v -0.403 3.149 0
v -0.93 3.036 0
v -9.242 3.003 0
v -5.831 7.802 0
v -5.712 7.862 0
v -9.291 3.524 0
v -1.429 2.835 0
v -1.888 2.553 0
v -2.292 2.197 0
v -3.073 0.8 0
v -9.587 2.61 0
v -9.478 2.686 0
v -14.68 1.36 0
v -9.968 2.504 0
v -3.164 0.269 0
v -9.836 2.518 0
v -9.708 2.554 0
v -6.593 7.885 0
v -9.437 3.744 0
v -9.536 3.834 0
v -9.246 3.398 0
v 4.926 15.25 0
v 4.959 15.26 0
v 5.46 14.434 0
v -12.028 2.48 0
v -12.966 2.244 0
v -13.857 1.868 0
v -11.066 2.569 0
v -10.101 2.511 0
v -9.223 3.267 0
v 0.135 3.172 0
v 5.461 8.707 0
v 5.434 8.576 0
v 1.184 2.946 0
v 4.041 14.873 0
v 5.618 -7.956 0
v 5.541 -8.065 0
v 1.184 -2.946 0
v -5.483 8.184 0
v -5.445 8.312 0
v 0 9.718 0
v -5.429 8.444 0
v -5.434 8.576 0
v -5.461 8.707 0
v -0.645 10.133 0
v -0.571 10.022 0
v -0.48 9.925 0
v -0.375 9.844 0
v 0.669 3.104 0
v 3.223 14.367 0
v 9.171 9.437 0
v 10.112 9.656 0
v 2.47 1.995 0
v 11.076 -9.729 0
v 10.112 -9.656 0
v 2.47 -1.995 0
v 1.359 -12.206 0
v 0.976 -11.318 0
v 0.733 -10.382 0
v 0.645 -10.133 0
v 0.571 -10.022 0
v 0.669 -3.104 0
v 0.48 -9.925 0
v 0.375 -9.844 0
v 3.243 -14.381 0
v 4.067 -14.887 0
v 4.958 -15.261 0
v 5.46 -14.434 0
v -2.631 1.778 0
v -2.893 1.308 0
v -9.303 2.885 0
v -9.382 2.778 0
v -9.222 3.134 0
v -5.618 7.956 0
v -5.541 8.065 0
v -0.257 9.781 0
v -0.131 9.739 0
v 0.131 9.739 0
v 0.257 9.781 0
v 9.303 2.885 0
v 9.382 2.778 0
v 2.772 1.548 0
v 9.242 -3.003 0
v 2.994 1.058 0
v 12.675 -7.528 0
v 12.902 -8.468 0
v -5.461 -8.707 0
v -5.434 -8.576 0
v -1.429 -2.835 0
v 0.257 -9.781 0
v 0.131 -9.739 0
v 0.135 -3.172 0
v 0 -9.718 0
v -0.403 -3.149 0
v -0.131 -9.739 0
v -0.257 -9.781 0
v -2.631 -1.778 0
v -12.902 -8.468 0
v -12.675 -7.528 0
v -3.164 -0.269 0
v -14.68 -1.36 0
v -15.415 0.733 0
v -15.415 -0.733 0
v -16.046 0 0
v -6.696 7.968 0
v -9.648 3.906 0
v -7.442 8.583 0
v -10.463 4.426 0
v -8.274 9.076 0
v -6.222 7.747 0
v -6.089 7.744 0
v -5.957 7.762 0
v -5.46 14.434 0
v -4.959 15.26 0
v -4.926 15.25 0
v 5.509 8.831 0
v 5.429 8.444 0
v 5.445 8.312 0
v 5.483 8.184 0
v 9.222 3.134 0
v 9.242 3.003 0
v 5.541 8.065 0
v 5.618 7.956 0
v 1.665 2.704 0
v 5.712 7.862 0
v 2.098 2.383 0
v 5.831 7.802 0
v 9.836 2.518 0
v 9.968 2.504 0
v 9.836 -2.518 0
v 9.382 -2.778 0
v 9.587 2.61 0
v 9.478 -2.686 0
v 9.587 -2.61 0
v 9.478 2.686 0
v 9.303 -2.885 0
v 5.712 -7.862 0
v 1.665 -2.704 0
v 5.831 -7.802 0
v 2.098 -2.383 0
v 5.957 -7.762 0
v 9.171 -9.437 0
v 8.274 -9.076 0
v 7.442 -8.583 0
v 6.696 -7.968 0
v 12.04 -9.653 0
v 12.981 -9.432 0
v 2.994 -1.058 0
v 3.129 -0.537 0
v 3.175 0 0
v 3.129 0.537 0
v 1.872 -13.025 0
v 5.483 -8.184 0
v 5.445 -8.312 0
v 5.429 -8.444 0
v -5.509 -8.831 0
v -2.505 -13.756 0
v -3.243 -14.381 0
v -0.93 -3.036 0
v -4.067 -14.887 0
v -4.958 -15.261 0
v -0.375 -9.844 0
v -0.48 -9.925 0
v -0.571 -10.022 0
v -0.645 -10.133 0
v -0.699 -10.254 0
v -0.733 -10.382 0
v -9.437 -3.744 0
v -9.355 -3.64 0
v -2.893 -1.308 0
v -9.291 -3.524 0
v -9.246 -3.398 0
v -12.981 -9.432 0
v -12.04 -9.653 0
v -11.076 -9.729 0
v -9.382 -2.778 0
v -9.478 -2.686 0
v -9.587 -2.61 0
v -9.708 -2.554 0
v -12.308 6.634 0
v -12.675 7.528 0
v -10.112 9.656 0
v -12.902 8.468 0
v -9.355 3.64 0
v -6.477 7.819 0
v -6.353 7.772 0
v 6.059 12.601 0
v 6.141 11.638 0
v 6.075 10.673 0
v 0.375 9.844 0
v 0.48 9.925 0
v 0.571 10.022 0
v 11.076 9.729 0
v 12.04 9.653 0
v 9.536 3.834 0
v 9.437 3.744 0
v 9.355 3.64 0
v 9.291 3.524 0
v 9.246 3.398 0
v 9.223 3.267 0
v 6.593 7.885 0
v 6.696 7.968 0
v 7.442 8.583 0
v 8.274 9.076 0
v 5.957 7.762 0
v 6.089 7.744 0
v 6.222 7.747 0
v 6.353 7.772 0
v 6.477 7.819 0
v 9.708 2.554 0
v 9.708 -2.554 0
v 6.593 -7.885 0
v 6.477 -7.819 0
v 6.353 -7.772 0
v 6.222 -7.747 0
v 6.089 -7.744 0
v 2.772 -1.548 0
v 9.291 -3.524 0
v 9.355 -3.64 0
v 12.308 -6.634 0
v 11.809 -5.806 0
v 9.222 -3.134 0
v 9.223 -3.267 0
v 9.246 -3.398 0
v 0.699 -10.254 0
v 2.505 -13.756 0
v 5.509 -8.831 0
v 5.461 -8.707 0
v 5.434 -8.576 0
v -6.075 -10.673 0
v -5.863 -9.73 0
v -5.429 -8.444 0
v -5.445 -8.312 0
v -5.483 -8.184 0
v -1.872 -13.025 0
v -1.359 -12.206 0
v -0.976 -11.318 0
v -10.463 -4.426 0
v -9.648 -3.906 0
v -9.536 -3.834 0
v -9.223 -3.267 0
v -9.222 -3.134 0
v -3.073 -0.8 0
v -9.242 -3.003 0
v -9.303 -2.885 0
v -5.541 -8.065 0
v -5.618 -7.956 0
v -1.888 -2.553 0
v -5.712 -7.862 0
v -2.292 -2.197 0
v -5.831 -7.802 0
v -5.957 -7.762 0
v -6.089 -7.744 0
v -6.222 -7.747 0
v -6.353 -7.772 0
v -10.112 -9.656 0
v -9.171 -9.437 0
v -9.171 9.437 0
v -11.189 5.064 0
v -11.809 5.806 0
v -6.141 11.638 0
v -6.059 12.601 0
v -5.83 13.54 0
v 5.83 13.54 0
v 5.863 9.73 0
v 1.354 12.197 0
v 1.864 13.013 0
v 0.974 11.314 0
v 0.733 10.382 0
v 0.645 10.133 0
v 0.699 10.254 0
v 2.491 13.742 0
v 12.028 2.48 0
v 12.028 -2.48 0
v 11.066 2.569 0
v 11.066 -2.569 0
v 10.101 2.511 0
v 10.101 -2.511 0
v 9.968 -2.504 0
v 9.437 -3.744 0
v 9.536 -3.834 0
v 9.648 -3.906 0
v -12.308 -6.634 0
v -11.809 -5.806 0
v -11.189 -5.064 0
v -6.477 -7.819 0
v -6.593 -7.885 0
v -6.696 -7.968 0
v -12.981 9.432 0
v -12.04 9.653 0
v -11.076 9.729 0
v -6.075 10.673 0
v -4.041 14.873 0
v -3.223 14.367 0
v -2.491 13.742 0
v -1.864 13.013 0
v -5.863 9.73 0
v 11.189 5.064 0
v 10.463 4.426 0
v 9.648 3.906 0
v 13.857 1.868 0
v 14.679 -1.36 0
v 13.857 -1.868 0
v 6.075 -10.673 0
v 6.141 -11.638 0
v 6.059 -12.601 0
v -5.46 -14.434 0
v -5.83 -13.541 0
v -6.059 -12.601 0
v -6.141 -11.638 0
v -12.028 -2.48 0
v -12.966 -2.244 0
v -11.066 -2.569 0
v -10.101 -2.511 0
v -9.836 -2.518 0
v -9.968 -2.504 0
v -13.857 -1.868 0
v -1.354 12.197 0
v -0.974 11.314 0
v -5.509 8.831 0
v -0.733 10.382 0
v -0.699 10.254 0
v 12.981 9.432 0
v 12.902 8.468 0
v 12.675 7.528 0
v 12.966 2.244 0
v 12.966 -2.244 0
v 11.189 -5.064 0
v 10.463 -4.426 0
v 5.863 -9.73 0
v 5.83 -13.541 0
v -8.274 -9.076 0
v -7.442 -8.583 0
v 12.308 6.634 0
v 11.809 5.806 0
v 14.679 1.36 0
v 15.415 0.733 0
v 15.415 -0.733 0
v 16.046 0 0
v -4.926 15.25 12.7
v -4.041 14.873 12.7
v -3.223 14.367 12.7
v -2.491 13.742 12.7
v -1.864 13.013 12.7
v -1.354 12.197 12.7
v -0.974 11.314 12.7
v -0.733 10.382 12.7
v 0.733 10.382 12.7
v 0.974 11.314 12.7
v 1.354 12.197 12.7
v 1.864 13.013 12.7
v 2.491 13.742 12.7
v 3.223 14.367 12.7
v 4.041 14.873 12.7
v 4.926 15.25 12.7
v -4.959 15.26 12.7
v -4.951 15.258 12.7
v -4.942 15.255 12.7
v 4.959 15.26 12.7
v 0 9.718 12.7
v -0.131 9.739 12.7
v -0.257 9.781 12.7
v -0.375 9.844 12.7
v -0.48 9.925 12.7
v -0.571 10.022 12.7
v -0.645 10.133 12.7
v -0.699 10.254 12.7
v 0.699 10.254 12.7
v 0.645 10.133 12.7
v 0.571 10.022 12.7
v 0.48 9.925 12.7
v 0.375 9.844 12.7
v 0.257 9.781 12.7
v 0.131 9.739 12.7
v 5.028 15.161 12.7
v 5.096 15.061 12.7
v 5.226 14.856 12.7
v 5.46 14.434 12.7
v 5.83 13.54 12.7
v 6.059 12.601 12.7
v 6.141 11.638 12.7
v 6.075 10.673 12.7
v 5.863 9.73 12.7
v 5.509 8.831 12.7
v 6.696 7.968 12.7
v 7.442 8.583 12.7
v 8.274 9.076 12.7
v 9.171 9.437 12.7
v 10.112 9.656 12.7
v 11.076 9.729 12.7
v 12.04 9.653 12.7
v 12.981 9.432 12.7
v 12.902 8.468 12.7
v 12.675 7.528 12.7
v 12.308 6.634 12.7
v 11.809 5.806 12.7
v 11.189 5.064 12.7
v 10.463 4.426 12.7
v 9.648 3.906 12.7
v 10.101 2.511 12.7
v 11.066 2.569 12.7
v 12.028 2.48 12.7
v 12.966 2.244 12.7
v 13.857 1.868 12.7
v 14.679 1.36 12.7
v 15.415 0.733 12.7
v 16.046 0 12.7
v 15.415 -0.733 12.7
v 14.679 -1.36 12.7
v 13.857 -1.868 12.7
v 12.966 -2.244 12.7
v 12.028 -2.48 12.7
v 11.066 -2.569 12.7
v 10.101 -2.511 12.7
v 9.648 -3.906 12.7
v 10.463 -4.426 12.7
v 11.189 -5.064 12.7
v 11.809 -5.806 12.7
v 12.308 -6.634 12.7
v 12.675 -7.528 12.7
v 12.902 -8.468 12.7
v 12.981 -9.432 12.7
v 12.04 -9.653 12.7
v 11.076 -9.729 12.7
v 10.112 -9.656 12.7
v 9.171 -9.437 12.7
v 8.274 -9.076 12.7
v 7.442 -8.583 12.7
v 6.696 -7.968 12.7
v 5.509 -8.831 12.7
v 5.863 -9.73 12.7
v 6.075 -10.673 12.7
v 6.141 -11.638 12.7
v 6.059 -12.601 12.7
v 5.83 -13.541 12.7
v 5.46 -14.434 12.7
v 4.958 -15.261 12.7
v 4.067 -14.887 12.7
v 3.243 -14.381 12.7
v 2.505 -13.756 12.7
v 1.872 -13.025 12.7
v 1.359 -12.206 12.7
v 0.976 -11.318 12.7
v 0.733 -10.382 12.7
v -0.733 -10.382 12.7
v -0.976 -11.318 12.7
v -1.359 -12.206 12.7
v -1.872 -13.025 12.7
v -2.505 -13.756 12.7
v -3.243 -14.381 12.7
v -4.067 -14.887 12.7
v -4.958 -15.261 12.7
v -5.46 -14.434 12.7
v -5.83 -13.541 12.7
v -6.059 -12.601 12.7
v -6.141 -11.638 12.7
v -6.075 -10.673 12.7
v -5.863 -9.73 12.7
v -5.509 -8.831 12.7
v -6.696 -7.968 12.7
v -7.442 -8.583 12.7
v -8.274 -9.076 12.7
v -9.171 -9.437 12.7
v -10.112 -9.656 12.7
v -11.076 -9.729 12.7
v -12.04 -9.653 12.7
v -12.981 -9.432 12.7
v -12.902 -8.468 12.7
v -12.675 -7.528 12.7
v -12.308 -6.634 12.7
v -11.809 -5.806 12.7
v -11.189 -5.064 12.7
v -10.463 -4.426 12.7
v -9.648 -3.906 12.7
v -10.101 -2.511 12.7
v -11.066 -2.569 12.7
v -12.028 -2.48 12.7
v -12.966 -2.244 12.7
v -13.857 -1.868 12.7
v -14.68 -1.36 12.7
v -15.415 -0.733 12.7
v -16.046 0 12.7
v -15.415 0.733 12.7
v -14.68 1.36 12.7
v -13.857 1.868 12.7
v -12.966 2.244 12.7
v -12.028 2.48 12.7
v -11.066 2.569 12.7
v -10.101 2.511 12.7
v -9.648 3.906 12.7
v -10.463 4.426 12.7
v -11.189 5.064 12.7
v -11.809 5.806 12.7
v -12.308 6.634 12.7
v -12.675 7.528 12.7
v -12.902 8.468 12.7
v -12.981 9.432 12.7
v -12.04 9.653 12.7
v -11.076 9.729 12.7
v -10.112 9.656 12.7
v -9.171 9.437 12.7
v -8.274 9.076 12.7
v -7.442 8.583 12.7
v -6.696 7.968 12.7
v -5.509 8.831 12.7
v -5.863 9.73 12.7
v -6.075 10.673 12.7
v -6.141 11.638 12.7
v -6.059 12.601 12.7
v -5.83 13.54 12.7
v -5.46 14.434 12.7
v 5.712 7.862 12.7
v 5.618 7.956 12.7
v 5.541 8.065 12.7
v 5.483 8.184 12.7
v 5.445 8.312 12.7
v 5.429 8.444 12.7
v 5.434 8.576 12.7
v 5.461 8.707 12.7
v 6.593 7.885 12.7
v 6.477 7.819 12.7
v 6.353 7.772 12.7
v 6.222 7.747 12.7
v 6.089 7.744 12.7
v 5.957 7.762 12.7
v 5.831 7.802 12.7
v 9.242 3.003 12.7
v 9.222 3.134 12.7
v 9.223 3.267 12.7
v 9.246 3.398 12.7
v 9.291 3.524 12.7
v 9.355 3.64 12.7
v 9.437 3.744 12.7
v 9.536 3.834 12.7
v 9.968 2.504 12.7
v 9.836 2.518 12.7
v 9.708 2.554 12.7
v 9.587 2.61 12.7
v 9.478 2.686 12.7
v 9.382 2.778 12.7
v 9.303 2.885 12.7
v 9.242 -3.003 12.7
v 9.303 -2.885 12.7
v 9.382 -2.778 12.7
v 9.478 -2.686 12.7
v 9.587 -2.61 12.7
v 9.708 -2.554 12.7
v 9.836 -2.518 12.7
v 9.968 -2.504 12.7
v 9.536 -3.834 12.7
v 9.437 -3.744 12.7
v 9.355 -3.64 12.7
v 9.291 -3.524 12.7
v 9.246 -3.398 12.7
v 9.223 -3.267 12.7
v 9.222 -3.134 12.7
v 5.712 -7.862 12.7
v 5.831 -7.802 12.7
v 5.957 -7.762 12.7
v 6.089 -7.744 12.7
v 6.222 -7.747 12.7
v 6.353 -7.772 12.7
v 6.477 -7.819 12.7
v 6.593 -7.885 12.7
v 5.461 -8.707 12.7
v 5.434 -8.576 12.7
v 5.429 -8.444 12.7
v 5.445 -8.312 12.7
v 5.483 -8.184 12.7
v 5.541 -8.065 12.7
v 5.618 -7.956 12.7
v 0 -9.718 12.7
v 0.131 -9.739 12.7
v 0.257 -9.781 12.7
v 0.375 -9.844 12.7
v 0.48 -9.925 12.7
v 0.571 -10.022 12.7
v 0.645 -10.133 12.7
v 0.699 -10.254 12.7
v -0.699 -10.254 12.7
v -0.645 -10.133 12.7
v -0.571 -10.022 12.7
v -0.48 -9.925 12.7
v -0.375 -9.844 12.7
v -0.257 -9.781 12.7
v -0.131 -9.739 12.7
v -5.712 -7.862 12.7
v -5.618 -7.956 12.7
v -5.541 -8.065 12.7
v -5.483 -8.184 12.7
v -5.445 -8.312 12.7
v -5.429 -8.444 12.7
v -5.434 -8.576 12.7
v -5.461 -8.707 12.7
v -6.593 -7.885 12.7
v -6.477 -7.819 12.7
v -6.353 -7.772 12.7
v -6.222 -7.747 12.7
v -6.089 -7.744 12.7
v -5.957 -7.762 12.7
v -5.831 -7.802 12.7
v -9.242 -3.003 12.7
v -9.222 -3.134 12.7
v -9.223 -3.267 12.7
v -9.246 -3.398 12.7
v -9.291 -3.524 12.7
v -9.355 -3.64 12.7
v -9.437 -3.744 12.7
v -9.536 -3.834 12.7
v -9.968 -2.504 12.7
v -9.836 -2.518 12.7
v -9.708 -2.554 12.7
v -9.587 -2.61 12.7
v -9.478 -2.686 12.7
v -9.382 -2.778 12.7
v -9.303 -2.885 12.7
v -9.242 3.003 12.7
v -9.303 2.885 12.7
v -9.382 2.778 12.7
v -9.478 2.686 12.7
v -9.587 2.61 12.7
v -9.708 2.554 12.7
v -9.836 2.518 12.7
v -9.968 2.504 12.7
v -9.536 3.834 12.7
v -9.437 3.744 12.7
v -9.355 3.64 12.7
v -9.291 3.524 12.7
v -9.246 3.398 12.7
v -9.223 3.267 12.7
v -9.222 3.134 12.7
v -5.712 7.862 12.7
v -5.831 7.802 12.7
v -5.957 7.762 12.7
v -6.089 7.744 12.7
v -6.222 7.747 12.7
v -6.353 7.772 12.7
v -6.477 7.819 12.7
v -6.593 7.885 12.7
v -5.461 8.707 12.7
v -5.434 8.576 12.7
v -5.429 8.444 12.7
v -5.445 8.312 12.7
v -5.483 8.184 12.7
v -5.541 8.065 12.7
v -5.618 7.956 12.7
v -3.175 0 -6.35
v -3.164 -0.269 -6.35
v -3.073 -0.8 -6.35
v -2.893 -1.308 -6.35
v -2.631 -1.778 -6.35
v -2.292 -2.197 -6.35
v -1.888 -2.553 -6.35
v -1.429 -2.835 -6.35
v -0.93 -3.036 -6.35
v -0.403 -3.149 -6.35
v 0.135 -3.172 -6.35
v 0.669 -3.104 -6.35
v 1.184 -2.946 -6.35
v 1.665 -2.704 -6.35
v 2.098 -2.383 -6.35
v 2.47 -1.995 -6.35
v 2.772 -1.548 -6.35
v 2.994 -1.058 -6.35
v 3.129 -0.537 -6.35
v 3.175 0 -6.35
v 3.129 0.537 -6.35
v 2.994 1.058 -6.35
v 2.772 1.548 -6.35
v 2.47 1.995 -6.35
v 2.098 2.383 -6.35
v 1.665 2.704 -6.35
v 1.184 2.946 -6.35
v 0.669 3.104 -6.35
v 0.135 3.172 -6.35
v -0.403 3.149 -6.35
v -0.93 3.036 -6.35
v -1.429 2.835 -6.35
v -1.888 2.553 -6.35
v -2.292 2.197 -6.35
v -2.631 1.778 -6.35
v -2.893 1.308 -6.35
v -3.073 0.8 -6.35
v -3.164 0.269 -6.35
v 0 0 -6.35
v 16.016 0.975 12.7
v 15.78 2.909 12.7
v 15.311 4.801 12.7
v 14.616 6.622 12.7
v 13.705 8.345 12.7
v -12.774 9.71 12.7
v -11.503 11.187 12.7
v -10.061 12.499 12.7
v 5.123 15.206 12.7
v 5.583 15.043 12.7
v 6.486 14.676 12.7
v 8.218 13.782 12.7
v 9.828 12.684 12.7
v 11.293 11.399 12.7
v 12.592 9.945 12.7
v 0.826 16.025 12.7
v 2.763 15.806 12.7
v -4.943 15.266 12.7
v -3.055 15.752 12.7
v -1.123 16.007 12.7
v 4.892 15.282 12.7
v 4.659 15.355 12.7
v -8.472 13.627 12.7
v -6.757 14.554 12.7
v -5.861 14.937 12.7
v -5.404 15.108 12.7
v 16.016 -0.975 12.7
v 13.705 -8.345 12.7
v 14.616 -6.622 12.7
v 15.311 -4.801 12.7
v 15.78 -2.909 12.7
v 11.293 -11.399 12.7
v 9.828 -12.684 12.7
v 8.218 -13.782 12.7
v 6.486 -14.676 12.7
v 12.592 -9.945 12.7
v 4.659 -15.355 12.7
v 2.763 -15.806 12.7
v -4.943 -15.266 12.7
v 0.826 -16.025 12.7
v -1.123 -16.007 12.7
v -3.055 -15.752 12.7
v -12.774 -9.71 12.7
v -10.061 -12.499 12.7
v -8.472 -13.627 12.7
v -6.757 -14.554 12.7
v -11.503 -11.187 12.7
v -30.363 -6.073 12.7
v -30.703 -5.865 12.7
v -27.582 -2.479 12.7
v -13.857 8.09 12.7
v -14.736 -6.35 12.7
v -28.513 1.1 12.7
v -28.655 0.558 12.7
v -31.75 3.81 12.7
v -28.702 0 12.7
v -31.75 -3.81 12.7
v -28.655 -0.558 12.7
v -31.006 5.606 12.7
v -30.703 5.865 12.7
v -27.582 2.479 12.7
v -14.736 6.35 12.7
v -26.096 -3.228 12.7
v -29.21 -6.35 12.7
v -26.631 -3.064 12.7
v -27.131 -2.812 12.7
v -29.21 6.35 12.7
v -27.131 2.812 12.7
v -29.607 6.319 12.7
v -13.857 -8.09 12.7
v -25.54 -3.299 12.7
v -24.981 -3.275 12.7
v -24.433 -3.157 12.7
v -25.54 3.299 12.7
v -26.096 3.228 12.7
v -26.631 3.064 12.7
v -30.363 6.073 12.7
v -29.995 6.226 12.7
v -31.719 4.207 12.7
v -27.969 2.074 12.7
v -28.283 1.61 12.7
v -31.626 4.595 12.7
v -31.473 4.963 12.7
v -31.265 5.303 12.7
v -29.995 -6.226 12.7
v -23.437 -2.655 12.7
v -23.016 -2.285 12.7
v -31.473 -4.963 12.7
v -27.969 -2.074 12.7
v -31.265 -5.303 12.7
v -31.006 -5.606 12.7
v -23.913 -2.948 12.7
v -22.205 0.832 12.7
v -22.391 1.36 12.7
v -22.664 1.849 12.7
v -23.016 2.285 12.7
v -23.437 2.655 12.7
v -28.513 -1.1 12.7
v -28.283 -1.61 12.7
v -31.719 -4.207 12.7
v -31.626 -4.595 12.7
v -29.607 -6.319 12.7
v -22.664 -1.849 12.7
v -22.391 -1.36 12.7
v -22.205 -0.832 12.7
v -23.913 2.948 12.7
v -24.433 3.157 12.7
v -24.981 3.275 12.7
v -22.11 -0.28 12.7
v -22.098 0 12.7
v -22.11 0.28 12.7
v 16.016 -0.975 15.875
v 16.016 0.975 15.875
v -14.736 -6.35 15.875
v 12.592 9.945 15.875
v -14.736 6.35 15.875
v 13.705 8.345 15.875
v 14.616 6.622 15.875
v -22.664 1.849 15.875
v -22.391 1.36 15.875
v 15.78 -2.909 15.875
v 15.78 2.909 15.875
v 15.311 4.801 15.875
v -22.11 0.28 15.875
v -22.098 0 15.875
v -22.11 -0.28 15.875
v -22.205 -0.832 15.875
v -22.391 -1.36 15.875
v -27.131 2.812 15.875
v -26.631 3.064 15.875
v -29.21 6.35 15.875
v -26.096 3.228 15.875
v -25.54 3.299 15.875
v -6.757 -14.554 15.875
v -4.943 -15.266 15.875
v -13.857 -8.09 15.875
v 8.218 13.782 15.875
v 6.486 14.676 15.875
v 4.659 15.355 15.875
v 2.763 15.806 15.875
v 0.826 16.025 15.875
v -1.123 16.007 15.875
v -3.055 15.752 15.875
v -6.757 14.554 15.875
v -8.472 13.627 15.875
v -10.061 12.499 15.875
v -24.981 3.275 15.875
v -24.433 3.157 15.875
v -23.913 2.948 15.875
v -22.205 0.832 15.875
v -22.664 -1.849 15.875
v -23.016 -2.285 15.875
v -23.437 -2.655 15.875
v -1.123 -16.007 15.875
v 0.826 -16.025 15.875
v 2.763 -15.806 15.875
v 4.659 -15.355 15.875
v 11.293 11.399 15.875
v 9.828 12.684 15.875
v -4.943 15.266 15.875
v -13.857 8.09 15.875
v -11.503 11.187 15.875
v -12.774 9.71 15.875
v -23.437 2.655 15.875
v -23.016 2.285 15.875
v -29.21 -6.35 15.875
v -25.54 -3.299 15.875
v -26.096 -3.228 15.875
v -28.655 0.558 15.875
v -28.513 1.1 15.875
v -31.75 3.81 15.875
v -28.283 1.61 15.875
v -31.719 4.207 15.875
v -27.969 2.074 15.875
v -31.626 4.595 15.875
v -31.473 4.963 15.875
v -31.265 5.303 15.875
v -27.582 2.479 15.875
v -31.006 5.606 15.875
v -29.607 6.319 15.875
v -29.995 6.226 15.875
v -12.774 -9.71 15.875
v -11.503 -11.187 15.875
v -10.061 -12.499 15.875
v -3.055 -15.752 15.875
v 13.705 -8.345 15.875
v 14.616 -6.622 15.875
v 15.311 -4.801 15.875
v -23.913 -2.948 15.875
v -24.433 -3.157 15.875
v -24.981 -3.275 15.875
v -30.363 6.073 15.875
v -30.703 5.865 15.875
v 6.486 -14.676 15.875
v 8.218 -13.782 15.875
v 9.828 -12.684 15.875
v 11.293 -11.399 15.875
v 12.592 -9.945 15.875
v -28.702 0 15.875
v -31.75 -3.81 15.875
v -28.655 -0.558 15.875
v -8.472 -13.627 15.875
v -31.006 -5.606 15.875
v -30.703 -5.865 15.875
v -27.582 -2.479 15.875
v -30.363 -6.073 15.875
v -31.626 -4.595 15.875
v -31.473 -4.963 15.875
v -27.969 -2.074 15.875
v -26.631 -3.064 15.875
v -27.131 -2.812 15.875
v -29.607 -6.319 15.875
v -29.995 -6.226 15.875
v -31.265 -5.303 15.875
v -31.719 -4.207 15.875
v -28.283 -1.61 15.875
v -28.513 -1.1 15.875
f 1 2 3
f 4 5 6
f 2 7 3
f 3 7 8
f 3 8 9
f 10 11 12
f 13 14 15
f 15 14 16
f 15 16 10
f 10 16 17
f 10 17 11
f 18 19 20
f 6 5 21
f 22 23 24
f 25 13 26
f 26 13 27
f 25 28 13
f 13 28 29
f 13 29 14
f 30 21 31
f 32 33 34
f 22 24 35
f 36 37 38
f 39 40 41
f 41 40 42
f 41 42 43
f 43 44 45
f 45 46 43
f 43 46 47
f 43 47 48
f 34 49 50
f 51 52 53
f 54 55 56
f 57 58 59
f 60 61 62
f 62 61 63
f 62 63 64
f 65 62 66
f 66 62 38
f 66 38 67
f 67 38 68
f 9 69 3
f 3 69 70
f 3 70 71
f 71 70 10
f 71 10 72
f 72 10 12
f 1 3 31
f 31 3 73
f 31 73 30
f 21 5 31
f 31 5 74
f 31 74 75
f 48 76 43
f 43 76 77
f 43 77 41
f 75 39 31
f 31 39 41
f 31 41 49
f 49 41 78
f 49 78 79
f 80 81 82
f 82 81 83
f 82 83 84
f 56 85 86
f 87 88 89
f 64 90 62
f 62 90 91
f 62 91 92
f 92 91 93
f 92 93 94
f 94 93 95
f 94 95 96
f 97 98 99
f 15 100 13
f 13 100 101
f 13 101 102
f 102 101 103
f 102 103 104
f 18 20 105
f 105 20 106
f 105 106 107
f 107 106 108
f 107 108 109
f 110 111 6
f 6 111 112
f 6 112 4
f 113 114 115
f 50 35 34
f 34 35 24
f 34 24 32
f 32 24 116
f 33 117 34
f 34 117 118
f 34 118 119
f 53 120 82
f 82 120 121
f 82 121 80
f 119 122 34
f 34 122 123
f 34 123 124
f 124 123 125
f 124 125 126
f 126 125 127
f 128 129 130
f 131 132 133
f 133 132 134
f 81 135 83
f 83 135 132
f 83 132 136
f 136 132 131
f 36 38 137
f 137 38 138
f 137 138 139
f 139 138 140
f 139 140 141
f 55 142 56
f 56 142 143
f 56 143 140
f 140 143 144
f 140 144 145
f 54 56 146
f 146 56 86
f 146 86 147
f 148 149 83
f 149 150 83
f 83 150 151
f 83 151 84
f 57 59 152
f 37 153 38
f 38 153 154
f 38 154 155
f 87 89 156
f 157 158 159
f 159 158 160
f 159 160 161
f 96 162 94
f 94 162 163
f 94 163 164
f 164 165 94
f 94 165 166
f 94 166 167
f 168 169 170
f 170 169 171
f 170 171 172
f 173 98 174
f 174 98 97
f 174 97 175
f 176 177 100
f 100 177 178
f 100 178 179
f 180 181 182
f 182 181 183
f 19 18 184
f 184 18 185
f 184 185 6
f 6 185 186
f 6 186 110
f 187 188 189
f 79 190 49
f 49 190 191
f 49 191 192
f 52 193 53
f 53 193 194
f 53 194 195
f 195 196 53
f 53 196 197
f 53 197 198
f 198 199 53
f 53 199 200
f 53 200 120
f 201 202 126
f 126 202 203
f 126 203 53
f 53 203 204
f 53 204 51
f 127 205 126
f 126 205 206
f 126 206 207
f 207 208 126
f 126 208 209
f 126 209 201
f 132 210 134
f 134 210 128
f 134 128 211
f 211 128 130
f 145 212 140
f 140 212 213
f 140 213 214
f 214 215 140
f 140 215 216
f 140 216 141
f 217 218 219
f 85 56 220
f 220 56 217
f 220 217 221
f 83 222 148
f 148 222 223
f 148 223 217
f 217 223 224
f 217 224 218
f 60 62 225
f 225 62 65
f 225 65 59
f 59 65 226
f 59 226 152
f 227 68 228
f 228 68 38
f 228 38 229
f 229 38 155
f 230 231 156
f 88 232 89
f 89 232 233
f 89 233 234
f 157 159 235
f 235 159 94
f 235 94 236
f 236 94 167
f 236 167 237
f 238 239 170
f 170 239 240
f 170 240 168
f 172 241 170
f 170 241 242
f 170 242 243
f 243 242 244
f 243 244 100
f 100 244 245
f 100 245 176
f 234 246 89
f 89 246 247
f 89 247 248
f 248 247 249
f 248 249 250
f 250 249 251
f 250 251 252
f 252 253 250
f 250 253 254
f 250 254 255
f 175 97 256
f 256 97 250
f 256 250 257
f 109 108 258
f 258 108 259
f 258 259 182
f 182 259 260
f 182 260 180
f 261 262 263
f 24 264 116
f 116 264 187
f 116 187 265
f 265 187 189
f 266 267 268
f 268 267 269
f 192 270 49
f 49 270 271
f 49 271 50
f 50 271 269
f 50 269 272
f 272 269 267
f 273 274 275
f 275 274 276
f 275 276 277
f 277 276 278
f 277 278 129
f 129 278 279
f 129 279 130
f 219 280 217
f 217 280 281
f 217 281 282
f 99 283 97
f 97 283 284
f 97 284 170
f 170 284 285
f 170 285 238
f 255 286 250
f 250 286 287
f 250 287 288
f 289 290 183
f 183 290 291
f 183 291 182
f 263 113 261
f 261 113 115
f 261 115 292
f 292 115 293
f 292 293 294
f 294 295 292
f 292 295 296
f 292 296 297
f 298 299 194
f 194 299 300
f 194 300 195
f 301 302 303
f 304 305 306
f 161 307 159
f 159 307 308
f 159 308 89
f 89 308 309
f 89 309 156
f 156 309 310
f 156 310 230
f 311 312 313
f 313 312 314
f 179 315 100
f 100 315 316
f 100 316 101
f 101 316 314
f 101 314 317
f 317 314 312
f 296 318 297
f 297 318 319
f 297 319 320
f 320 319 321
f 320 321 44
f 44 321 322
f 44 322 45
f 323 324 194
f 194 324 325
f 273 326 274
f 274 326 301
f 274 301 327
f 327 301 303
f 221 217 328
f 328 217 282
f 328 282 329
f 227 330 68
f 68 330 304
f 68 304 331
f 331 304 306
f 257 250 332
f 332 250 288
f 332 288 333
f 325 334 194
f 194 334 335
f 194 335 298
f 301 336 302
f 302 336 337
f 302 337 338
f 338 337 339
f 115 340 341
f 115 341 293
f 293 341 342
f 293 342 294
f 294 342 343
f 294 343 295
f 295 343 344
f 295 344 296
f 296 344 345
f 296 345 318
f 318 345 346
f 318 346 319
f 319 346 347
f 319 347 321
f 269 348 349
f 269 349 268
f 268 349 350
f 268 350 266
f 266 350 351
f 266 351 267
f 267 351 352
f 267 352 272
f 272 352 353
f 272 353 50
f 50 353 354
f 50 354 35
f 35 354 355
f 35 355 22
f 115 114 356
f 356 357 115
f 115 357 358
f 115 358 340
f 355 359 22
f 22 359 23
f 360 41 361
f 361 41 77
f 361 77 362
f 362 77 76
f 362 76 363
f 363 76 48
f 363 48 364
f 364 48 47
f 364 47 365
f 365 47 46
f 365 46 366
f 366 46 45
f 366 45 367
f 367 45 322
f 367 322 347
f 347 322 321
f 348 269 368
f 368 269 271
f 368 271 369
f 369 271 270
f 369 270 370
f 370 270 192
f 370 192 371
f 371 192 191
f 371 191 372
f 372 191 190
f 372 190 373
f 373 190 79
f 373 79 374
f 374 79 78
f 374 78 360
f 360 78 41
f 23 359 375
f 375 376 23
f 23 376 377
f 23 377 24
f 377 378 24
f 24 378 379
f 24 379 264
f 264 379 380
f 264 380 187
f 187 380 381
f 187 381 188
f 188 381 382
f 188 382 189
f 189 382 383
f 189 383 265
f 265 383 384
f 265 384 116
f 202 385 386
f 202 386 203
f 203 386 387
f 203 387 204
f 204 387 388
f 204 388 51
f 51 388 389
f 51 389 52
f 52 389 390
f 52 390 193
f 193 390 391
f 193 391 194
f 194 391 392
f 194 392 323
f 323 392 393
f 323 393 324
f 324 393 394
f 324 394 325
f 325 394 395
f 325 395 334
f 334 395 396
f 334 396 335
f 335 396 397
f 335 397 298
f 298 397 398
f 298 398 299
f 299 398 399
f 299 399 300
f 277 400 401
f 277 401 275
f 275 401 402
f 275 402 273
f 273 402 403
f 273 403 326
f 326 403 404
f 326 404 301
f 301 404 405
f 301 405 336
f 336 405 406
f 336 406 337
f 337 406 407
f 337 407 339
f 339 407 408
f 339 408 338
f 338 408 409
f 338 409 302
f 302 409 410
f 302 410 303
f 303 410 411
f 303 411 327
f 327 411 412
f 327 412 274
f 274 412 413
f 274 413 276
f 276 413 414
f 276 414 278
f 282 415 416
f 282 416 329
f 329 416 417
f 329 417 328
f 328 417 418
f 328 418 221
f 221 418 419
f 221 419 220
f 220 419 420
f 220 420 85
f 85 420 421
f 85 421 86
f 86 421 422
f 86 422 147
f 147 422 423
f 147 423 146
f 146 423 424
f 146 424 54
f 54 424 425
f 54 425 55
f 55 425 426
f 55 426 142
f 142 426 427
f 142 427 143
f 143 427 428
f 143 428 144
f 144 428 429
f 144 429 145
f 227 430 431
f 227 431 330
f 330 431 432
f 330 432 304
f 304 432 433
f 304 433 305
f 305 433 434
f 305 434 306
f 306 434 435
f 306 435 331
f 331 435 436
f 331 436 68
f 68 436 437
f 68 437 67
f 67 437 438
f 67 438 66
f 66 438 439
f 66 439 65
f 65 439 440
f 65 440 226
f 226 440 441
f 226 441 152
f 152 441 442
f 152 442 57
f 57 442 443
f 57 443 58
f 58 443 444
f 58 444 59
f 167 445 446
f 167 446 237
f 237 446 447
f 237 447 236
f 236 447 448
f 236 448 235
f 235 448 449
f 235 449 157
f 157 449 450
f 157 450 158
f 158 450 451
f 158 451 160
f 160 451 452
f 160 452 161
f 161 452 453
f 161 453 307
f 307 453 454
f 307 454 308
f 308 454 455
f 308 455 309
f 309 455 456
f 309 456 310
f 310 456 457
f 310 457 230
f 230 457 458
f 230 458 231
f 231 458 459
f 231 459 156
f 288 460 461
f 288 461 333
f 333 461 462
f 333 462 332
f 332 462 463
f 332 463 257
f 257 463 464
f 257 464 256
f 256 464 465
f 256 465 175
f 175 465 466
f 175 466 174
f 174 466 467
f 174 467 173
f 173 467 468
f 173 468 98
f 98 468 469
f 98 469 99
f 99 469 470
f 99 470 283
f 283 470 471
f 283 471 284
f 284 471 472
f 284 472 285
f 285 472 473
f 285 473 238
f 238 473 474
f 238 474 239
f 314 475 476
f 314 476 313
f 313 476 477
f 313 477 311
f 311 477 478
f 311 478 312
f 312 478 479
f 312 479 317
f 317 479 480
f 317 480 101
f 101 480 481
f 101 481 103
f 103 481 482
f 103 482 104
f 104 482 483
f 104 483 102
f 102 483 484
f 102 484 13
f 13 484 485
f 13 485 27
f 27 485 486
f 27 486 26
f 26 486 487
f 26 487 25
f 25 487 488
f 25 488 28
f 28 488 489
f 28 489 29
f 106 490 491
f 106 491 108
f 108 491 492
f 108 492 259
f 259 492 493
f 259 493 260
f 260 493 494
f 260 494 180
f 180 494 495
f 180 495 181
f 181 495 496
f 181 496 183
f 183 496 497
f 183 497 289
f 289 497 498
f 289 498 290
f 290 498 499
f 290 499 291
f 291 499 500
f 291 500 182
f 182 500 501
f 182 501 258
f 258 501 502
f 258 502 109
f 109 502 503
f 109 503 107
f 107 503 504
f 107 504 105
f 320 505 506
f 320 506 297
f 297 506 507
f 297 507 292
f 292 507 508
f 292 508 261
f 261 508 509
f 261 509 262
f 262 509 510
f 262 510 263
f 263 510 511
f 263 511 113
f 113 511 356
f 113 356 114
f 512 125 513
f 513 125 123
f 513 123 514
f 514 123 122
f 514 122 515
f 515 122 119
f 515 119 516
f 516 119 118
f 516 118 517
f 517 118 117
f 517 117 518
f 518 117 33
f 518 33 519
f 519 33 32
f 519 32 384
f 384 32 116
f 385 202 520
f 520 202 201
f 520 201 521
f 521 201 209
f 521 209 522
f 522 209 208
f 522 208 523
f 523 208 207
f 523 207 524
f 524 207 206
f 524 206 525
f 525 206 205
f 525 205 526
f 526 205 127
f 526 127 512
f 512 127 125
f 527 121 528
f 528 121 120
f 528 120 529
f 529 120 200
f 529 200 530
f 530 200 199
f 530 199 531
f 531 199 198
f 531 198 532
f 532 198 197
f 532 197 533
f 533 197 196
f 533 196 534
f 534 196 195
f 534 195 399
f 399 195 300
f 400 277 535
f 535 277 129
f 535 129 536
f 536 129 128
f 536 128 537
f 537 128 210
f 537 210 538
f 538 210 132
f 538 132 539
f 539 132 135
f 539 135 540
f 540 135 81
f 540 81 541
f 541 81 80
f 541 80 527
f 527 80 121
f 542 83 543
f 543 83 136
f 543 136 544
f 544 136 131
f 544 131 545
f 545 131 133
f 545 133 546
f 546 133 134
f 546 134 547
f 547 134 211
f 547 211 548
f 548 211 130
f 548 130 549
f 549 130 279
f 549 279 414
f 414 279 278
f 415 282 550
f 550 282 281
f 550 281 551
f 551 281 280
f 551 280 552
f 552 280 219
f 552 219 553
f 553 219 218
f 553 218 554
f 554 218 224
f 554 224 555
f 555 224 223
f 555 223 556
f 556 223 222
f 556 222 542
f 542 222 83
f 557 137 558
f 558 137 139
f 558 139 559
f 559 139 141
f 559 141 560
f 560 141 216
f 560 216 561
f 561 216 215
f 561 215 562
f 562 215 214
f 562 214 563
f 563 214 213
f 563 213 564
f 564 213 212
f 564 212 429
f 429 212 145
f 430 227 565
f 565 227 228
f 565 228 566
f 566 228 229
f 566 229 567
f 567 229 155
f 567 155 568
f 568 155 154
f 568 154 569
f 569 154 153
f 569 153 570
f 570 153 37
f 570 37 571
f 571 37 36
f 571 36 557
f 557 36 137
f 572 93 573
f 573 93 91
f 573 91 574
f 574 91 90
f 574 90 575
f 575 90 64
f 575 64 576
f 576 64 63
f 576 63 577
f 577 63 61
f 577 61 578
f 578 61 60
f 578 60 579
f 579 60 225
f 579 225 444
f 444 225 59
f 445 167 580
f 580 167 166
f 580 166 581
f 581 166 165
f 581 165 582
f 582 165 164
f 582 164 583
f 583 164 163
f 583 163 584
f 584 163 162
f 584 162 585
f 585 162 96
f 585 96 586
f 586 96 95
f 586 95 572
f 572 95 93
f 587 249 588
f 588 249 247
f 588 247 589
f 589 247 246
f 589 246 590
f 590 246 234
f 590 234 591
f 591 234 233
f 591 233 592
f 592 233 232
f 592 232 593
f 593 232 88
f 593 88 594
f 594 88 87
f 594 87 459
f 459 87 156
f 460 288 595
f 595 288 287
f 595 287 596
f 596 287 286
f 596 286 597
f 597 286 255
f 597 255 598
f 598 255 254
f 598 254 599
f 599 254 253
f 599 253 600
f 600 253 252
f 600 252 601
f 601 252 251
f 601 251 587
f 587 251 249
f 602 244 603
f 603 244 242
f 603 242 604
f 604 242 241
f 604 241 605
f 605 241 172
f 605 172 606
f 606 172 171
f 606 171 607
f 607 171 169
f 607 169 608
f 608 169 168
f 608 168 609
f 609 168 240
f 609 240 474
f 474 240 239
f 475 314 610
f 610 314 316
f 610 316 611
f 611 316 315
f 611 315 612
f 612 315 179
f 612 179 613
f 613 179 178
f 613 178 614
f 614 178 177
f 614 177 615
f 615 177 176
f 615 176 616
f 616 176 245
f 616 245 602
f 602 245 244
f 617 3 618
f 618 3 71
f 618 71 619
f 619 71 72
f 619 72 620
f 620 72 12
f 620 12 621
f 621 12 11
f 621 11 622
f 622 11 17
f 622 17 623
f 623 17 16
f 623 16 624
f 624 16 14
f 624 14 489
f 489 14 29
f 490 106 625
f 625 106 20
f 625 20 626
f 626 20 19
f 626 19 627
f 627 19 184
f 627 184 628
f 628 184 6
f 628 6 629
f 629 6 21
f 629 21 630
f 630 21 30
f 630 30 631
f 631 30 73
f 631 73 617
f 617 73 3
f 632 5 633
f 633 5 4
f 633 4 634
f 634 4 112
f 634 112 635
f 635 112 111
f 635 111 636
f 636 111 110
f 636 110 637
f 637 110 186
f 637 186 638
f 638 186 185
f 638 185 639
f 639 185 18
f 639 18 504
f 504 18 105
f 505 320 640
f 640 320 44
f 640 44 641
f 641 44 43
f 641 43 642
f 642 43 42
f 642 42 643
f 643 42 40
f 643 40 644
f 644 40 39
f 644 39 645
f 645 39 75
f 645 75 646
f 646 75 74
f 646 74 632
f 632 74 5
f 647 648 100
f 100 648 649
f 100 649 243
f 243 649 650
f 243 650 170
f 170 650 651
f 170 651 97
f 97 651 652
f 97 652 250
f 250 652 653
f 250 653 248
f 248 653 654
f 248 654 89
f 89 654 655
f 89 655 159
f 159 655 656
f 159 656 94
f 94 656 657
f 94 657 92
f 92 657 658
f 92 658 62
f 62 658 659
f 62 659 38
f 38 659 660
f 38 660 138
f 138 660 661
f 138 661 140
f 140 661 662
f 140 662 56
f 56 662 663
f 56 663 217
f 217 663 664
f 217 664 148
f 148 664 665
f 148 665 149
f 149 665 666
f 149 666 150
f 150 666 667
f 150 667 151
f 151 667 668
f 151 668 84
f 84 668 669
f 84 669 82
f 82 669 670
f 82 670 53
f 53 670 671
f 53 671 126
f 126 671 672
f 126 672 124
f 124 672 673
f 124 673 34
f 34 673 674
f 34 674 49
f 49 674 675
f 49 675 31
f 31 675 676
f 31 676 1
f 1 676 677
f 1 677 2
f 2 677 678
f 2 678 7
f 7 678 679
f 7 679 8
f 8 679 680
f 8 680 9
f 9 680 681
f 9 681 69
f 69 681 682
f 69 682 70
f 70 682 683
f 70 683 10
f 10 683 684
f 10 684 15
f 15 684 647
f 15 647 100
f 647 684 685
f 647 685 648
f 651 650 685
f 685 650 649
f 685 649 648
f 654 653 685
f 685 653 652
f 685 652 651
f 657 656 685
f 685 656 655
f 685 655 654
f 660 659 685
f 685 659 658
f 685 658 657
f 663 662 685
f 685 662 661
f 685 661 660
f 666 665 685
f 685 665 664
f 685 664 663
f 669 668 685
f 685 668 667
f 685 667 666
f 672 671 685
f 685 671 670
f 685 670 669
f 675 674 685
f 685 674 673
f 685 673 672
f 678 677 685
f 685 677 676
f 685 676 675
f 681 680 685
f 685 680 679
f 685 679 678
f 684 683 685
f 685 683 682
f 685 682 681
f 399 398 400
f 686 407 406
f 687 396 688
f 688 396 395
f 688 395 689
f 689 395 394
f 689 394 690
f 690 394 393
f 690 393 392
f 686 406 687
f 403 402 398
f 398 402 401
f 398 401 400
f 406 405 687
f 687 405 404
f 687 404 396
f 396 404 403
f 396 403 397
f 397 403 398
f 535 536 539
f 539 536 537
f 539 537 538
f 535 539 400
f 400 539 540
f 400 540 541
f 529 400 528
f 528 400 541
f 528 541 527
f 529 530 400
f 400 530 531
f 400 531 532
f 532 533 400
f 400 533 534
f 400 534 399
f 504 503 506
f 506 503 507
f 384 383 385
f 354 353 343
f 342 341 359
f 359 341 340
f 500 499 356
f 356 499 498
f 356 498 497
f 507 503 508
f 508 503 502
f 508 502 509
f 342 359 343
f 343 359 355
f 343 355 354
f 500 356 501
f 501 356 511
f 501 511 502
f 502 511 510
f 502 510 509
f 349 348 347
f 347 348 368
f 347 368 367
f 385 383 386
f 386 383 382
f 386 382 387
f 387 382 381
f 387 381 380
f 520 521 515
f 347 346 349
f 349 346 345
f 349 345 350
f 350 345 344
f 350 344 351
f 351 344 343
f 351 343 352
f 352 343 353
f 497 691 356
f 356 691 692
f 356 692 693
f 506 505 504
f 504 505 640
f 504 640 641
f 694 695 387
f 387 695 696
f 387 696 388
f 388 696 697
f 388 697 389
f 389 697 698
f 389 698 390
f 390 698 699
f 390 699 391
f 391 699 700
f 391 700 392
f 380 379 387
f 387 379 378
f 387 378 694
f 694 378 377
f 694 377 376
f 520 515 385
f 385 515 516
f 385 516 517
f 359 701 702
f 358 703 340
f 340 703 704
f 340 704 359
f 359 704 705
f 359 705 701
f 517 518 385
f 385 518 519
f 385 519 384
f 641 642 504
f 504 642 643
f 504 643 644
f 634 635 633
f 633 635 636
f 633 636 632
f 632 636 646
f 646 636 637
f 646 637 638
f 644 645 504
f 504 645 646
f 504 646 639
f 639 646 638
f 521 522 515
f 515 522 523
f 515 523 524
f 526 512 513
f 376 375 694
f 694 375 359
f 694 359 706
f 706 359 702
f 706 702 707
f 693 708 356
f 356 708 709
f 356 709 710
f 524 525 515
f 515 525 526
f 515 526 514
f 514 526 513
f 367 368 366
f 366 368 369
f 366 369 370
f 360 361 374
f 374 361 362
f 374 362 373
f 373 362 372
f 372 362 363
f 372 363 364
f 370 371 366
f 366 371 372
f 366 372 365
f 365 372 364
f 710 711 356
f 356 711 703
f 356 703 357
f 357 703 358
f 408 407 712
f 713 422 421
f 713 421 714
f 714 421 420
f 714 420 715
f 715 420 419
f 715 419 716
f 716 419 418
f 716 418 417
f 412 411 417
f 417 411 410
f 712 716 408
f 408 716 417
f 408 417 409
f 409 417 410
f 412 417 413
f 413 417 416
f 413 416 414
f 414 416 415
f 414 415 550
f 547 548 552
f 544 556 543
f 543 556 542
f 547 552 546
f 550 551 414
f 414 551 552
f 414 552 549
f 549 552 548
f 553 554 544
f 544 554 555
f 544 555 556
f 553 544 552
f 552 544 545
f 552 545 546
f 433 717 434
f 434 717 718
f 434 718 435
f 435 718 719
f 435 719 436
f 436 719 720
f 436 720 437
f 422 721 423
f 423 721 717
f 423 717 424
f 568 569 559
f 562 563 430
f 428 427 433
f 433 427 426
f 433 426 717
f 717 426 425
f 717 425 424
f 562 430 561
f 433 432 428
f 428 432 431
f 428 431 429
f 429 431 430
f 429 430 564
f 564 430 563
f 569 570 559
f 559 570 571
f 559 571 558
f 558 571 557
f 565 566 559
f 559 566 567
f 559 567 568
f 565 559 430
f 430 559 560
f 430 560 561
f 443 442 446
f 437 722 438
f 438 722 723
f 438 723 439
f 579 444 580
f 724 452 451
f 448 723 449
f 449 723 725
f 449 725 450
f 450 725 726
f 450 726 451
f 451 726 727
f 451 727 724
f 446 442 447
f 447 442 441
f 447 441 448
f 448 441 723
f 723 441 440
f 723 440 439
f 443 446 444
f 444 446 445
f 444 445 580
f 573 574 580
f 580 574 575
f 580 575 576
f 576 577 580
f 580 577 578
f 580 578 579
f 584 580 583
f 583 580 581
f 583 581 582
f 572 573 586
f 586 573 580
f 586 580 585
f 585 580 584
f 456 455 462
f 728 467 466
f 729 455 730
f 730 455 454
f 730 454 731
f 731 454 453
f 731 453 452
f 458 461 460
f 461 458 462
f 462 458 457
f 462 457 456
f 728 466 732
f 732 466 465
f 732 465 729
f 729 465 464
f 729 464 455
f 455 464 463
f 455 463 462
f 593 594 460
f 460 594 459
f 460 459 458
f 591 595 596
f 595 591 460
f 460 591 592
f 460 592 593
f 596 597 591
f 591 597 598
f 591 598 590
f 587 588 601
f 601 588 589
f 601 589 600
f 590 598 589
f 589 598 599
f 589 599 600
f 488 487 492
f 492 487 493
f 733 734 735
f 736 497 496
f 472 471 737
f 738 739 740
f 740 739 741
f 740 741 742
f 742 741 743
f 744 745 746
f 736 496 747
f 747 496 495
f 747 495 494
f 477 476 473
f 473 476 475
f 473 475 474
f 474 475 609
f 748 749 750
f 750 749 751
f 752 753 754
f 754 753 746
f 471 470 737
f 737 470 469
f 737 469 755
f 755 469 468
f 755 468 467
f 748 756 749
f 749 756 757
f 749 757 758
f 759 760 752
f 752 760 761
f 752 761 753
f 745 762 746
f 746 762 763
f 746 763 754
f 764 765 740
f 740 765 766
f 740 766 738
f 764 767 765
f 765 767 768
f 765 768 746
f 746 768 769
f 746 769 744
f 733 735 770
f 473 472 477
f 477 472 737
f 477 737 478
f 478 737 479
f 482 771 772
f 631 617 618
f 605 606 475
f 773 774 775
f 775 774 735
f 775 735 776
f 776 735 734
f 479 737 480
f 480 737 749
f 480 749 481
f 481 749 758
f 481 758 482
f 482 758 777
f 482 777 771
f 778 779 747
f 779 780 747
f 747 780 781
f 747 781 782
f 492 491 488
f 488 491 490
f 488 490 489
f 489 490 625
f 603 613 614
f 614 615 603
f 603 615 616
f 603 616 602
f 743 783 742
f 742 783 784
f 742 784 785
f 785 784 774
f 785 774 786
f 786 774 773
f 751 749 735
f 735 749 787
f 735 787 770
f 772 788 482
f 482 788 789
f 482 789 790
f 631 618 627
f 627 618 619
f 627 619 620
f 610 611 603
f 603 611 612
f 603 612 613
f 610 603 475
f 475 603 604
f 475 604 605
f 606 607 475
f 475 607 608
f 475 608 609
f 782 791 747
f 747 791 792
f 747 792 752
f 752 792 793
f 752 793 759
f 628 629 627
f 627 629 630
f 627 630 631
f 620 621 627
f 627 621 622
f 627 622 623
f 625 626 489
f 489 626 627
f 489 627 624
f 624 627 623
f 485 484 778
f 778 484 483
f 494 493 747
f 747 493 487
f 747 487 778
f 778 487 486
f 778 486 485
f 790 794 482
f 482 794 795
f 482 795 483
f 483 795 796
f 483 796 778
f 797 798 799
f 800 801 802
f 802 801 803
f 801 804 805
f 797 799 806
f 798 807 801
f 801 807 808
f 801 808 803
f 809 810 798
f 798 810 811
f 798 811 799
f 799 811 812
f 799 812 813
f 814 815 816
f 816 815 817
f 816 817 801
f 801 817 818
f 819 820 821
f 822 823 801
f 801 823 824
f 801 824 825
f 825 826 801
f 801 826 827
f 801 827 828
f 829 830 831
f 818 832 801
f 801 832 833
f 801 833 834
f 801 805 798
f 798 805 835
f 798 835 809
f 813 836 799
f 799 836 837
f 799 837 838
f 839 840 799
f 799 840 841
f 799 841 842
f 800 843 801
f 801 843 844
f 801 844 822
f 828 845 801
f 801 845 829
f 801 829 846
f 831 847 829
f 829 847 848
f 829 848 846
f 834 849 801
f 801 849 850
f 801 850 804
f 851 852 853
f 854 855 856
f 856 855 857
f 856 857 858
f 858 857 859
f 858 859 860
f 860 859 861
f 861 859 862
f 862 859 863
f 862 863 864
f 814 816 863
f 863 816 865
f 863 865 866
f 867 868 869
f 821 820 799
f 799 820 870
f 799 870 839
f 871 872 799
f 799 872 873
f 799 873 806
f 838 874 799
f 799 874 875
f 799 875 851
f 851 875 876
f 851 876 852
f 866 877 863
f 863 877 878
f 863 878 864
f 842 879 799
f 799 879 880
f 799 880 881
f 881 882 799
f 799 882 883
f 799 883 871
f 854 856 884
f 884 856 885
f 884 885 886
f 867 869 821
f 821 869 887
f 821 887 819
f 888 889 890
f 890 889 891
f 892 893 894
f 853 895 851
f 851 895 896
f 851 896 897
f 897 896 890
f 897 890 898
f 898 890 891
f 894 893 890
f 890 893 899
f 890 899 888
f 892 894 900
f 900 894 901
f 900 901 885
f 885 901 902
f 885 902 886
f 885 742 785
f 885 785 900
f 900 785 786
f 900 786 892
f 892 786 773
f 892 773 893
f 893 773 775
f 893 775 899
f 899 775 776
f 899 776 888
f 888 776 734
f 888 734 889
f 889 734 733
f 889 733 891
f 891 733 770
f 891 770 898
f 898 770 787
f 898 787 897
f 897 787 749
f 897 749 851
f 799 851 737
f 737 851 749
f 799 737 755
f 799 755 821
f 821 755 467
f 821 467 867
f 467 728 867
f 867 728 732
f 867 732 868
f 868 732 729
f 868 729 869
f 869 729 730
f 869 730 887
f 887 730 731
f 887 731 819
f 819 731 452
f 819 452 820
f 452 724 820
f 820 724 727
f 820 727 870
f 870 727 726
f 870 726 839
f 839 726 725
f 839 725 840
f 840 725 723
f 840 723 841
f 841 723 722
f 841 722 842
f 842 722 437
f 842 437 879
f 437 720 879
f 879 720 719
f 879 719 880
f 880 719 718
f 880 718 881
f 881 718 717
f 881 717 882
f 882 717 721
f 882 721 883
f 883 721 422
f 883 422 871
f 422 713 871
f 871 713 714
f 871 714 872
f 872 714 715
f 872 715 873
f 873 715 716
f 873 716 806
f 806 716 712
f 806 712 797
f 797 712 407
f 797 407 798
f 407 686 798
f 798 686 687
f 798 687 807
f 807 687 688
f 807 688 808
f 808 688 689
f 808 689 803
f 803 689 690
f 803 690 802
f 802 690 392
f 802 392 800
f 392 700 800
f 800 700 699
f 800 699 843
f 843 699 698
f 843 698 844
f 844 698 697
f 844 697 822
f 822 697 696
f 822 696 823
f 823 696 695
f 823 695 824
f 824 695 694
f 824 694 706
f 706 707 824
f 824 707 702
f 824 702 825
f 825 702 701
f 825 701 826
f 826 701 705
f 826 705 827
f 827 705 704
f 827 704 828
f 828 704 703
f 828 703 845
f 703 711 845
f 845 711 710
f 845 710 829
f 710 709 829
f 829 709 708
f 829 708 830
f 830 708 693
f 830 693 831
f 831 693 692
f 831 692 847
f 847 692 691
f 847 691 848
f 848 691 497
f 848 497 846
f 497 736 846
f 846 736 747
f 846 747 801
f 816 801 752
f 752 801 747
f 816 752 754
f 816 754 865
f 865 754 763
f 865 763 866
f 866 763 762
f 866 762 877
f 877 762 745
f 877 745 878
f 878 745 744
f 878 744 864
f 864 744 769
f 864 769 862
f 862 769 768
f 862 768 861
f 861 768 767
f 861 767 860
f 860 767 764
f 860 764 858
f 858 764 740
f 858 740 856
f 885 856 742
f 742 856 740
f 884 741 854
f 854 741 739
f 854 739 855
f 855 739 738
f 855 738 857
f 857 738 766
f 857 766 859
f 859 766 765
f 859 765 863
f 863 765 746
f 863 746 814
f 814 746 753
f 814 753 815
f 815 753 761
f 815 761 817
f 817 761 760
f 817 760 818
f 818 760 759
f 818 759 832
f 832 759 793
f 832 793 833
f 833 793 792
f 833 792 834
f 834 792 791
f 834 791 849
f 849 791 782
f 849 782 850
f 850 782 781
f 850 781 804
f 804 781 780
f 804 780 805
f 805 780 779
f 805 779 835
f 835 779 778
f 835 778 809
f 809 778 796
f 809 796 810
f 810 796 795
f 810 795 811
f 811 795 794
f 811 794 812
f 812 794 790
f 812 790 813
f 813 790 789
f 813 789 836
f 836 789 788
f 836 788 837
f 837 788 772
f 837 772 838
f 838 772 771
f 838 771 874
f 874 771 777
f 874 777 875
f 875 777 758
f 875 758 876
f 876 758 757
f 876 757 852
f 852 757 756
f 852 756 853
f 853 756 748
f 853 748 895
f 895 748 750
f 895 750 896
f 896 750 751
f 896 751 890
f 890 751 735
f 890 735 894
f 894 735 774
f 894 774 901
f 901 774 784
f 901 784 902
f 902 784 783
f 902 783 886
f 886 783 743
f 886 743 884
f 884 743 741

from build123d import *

# Parameters (mm, degrees)
SKETCH1_R           = 16.192287761
BOSS_EXTRUDE1_DEPTH = 12.7
CUT_EXTRUDE1_DEPTH  = 12.7
FILLET1_R           = 0.809614388
CIRPATTERN1_DEPTH   = 12.7
SKETCH3_R           = 3.175
BOSS_EXTRUDE2_DEPTH = 6.35
SKETCH5_R           = 3.302
BOSS_EXTRUDE3_DEPTH = 3.175


# Read off the part's stored shape, not the designer's step: CirPattern1
with BuildPart() as part:
    # Sketch1 → Boss-Extrude1 (new body)
    with BuildSketch(Plane.XY):
        Circle(SKETCH1_R)
    extrude(amount=BOSS_EXTRUDE1_DEPTH)

    # Sketch2 → Cut-Extrude1 (cut)
    with BuildSketch(Plane.XY.offset(12.7)):
        with BuildLine():
            ThreePointArc((-0.648981162, 9.693672643), (-2.761211409, 13.995350311), (-7.286822608, 15.571672188))
            ThreePointArc((-7.286822608, 15.571672188), (0, 17.192287761), (7.286822608, 15.571672188))
            ThreePointArc((7.286822608, 15.571672188), (2.761211409, 13.995350311), (0.648981162, 9.693672643))
            ThreePointArc((0.648981162, 9.693672643), (0, 9.715372656), (-0.648981162, 9.693672643))
        make_face()
    extrude(amount=-CUT_EXTRUDE1_DEPTH, mode=Mode.SUBTRACT)

    # Fillet1
    # the kernel refuses this fillet: 0.809614388 mm, written as the material it adds along each edge
    with BuildSketch(Plane(origin=(0.648981162, 9.693672643, 12.7), x_dir=(0.12156320456415769, 0.9925836928421162, 0), z_dir=(0, 0, -1))) as fillet1_piece_1:
        with BuildLine():
            CenterArc((0.738327126, -0.808389468), FILLET1_R, 93.152151787, 79.518968538)
            ThreePointArc((-0.064672931, -0.705111371), (-0.025910634, -0.353145064), (0, 0))
            ThreePointArc((0, 0), (0.346904155, -0.009544948), (0.69380831, 0))
        make_face()
    extrude(amount=12.7)
    with BuildSketch(Plane(origin=(-0.648981162, 9.693672643, 12.7), x_dir=(0.9995379445948291, 0.030395679218338256, 0), z_dir=(0, 0, -1))) as fillet1_piece_2:
        with BuildLine():
            CenterArc((0.737574027, -0.809076654), FILLET1_R, 92.088363944, 79.518968538)
            ThreePointArc((-0.063370217, -0.690908233), (-0.022180058, -0.346325921), (0, 0))
            ThreePointArc((0, 0), (0.354035533, -0.006452804), (0.708071066, 0))
        make_face()
    extrude(amount=12.7)
    # the kernel refuses this fillet: 0.809614388 mm, written as the material it takes off along each edge
    with BuildSketch(Plane(origin=(-5.198948894, 15.334963753, 13.415202102), x_dir=(-0.9443027648777296, -0.32907793642885796, 0), z_dir=(0, 0, -1))) as fillet1_2_piece_1:
        with BuildLine():
            CenterArc((0.267182003, -0.809585402), FILLET1_R, 89.515166978, 38.350588161)
            ThreePointArc((-0.229770211, -0.170434439), (-0.115851307, -0.08391464), (0, 0))
            ThreePointArc((0, 0), (0.137016412, 0.000579715), (0.274032824, 0))
        make_face()
    extrude(amount=14.130404205, mode=Mode.SUBTRACT)
    with BuildSketch(Plane(origin=(5.198948894, 15.334963753, 13.415202102), x_dir=(0.9443027648777299, -0.32907793642885697, 0), z_dir=(0, 0, -1))) as fillet1_2_piece_2:
        with BuildLine():
            CenterArc((0.267182003, 0.809585402), FILLET1_R, 232.134244861, 38.350588161)
            ThreePointArc((-0.229770211, 0.170434439), (-0.115851307, 0.08391464), (0, 0))
            ThreePointArc((0, 0), (0.137016412, -0.000579715), (0.274032824, 0))
        make_face()
    extrude(amount=14.130404205, mode=Mode.SUBTRACT)

    # CirPattern1 outline → CirPattern1 (cut)
    with BuildSketch(Plane.XY):
        with BuildLine():
            ThreePointArc((4.958837242, 15.259978898), (6.118325298, 12.120958043), (5.50931312, 8.830522108))
            ThreePointArc((5.50931312, 8.830522108), (5.445351284, 8.311585796), (5.711912975, 7.86177375))
            ThreePointArc((5.711912975, 7.86177375), (6.222081746, 7.747258083), (6.695854212, 7.968449544))
            ThreePointArc((6.695854212, 7.968449544), (9.637377118, 9.564531404), (12.981378188, 9.431523325))
            ThreePointArc((12.981378188, 9.431523325), (12.074523228, 6.21008756), (9.647578607, 3.905749452))
            ThreePointArc((9.647578607, 3.905749452), (9.290809283, 3.523516981), (9.242069335, 3.002930361))
            ThreePointArc((9.242069335, 3.002930361), (9.58749392, 2.610415561), (10.100796975, 2.510886743))
            ThreePointArc((10.100796975, 2.510886743), (13.418692374, 2.073160309), (16.045865882, 0))
            ThreePointArc((16.045865882, 0), (13.418692374, -2.073160309), (10.100796975, -2.510886743))
            ThreePointArc((10.100796975, -2.510886743), (9.58749392, -2.610415561), (9.242069335, -3.002930361))
            ThreePointArc((9.242069335, -3.002930361), (9.290809283, -3.523516981), (9.647578607, -3.905749452))
            ThreePointArc((9.647578607, -3.905749452), (12.074523228, -6.21008756), (12.981378188, -9.431523325))
            ThreePointArc((12.981378188, -9.431523325), (9.637377118, -9.564531404), (6.695854212, -7.968449544))
            ThreePointArc((6.695854212, -7.968449544), (6.222081746, -7.747258083), (5.711912975, -7.86177375))
            ThreePointArc((5.711912975, -7.86177375), (5.445351284, -8.311585796), (5.50931312, -8.830522108))
            ThreePointArc((5.50931312, -8.830522108), (6.118296607, -12.121293054), (4.958445247, -15.260525306))
            ThreePointArc((4.958445247, -15.260525306), (2.174911365, -13.402576589), (0.733322724, -10.382335457))
            ThreePointArc((0.733322724, -10.382335457), (0.480045825, -9.924911338), (0, -9.717686779))
            ThreePointArc((0, -9.717686779), (-0.480045825, -9.924911338), (-0.733322724, -10.382335457))
            ThreePointArc((-0.733322724, -10.382335457), (-2.174911365, -13.402576589), (-4.958445247, -15.260525306))
            ThreePointArc((-4.958445247, -15.260525306), (-6.118296607, -12.121293054), (-5.50931312, -8.830522108))
            ThreePointArc((-5.50931312, -8.830522108), (-5.445351284, -8.311585796), (-5.711912975, -7.86177375))
            ThreePointArc((-5.711912975, -7.86177375), (-6.222081746, -7.747258083), (-6.695854212, -7.968449544))
            ThreePointArc((-6.695854212, -7.968449544), (-9.637377118, -9.564531404), (-12.981378188, -9.431523325))
            ThreePointArc((-12.981378188, -9.431523325), (-12.074523228, -6.21008756), (-9.647578607, -3.905749452))
            ThreePointArc((-9.647578607, -3.905749452), (-9.290809283, -3.523516981), (-9.242069335, -3.002930361))
            ThreePointArc((-9.242069335, -3.002930361), (-9.58749392, -2.610415561), (-10.100796975, -2.510886743))
            ThreePointArc((-10.100796975, -2.510886743), (-13.418692374, -2.073160309), (-16.045865882, 0))
            ThreePointArc((-16.045865882, 0), (-13.418692374, 2.073160309), (-10.100796975, 2.510886743))
            ThreePointArc((-10.100796975, 2.510886743), (-9.58749392, 2.610415561), (-9.242069335, 3.002930361))
            ThreePointArc((-9.242069335, 3.002930361), (-9.290809283, 3.523516981), (-9.647578607, 3.905749452))
            ThreePointArc((-9.647578607, 3.905749452), (-12.074523228, 6.21008756), (-12.981378188, 9.431523325))
            ThreePointArc((-12.981378188, 9.431523325), (-9.637377118, 9.564531404), (-6.695854212, 7.968449544))
            ThreePointArc((-6.695854212, 7.968449544), (-6.222081746, 7.747258083), (-5.711912975, 7.86177375))
            ThreePointArc((-5.711912975, 7.86177375), (-5.445351284, 8.311585796), (-5.50931312, 8.830522108))
            ThreePointArc((-5.50931312, 8.830522108), (-6.118325298, 12.120958043), (-4.958837242, 15.259978898))
            ThreePointArc((-4.958837242, 15.259978898), (-5.20947806, 15.291785512), (-5.457718847, 15.244785597))
            ThreePointArc((-5.457718847, 15.244785597), (0, -16.192287761), (5.457718847, 15.244785597))
            ThreePointArc((5.457718847, 15.244785597), (5.20947806, 15.291785512), (4.958837242, 15.259978898))
        make_face()
    extrude(amount=CIRPATTERN1_DEPTH, mode=Mode.SUBTRACT)

    # Sketch3 → Boss-Extrude2 (add)
    with BuildSketch(Plane(origin=(0, 0, 0), x_dir=(-1, 0, 0), z_dir=(0, 0, -1))):
        with Locations(Location((0, 0, 0), (0, 0, 180))):
            Circle(SKETCH3_R)
    extrude(amount=BOSS_EXTRUDE2_DEPTH)

    # Sketch5 → Boss-Extrude3 (add)
    with BuildSketch(Plane.XY.offset(12.7)):
        with BuildLine():
            Line((-14.735919106, 6.35), (-29.21, 6.35))
            ThreePointArc((-29.21, 6.35), (-31.006051224, 5.606051224), (-31.75, 3.81))
            Line((-31.75, 3.81), (-31.75, -3.81))
            ThreePointArc((-31.75, -3.81), (-31.006051224, -5.606051224), (-29.21, -6.35))
            Line((-29.21, -6.35), (-14.735919106, -6.35))
            ThreePointArc((-14.735919106, -6.35), (16.045865882, 0), (-14.735919106, 6.35))
        make_face()
        with Locations((-25.4, 0)):
            Circle(SKETCH5_R, mode=Mode.SUBTRACT)
    extrude(amount=BOSS_EXTRUDE3_DEPTH)


solid = part.part
